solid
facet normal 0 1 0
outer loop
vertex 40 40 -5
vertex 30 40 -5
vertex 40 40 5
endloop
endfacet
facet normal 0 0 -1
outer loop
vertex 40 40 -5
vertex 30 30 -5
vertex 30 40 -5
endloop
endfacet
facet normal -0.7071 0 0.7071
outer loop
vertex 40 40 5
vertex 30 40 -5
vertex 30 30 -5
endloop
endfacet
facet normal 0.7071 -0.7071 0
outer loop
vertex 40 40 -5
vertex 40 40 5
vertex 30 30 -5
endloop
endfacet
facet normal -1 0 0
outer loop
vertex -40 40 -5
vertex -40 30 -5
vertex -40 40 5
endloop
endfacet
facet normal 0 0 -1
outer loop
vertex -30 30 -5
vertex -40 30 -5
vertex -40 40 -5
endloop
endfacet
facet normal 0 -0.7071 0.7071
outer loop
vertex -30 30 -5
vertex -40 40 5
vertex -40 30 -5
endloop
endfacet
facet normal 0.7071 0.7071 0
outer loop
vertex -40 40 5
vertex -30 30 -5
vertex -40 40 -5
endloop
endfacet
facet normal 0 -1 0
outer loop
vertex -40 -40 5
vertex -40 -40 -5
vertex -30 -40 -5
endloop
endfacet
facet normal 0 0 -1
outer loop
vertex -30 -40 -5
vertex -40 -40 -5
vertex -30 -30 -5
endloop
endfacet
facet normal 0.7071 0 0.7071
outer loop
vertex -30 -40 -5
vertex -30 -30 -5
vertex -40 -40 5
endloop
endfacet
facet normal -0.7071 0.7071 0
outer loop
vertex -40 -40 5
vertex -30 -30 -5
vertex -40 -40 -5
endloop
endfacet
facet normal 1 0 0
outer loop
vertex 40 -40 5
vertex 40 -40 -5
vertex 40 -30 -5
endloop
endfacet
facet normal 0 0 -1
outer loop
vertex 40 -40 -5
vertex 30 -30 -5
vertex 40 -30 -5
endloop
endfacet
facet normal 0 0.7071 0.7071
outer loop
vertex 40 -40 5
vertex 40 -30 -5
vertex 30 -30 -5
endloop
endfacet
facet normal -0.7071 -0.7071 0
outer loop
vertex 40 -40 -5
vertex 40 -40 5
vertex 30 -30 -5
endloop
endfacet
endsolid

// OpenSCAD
// file: def.scad
block_size_3 = 19;
block_size_4 = 16;
block_size_5 = 14;
block_size_6 = 12.5;
block_size_7 = 11;
block_size_8 = 10;

inf = 1000;

round_radius = 1;
sticker_margin = 2.5;
sticker_round_radius = 0.75;

module _block(size) {
    minkowski() {
        cube([size - round_radius * 2, size - round_radius * 2, size - round_radius * 2], center = true);
        sphere(r = round_radius, $fn = 24);
    }
}

module _selector_0(size) {
    cube([size - 0.2, size - 0.2, size - 0.2], center = true);
}

module _sticker(size) {
    minkowski() {
        cube([size - sticker_margin * 2, size - sticker_margin * 2, 0.1], center = true);
        cylinder(r = sticker_round_radius, h = 0.1, $fn = 24);
    }
}

module _selector_corner_cw(size) {
    difference() {
        cube([size, size, size], center = true);
        rotate([0, -45, 0])
            translate([-inf, -inf, 0])
                cube([inf * 2, inf * 2, inf]);
        rotate([90, 0, 45])
            translate([-inf, -inf, 0])
                cube([inf * 2, inf * 2, inf]);
    }
}

module _selector_corner_ccw(size) {
    difference() {
        cube([size, size, size], center = true);
        rotate([45, 0, 0])
            translate([-inf, -inf, 0])
                cube([inf * 2, inf * 2, inf]);
        rotate([0, -90, -45])
            translate([-inf, -inf, 0])
                cube([inf * 2, inf * 2, inf]);
    }
}

module _selector_edge_cw(size) {
    difference() {
        cube([size, size, size], center = true);
        rotate([90, 0, 45])
            translate([-inf, -inf, 0])
                cube([inf * 2, inf * 2, inf]);
    }
}

module _selector_edge_ccw(size) {
    difference() {
        cube([size, size, size], center = true);
        rotate([0, -90, -45])
            translate([-inf, -inf, 0])
                cube([inf * 2, inf * 2, inf]);
    }
}
// main file
include <def.scad>

for (deg = [0 : 90 : 270])
    rotate([0, 0, deg])
        translate([block_size_8 * 3.5, block_size_8 * 3.5, 0])
            _selector_corner_cw(block_size_8);
